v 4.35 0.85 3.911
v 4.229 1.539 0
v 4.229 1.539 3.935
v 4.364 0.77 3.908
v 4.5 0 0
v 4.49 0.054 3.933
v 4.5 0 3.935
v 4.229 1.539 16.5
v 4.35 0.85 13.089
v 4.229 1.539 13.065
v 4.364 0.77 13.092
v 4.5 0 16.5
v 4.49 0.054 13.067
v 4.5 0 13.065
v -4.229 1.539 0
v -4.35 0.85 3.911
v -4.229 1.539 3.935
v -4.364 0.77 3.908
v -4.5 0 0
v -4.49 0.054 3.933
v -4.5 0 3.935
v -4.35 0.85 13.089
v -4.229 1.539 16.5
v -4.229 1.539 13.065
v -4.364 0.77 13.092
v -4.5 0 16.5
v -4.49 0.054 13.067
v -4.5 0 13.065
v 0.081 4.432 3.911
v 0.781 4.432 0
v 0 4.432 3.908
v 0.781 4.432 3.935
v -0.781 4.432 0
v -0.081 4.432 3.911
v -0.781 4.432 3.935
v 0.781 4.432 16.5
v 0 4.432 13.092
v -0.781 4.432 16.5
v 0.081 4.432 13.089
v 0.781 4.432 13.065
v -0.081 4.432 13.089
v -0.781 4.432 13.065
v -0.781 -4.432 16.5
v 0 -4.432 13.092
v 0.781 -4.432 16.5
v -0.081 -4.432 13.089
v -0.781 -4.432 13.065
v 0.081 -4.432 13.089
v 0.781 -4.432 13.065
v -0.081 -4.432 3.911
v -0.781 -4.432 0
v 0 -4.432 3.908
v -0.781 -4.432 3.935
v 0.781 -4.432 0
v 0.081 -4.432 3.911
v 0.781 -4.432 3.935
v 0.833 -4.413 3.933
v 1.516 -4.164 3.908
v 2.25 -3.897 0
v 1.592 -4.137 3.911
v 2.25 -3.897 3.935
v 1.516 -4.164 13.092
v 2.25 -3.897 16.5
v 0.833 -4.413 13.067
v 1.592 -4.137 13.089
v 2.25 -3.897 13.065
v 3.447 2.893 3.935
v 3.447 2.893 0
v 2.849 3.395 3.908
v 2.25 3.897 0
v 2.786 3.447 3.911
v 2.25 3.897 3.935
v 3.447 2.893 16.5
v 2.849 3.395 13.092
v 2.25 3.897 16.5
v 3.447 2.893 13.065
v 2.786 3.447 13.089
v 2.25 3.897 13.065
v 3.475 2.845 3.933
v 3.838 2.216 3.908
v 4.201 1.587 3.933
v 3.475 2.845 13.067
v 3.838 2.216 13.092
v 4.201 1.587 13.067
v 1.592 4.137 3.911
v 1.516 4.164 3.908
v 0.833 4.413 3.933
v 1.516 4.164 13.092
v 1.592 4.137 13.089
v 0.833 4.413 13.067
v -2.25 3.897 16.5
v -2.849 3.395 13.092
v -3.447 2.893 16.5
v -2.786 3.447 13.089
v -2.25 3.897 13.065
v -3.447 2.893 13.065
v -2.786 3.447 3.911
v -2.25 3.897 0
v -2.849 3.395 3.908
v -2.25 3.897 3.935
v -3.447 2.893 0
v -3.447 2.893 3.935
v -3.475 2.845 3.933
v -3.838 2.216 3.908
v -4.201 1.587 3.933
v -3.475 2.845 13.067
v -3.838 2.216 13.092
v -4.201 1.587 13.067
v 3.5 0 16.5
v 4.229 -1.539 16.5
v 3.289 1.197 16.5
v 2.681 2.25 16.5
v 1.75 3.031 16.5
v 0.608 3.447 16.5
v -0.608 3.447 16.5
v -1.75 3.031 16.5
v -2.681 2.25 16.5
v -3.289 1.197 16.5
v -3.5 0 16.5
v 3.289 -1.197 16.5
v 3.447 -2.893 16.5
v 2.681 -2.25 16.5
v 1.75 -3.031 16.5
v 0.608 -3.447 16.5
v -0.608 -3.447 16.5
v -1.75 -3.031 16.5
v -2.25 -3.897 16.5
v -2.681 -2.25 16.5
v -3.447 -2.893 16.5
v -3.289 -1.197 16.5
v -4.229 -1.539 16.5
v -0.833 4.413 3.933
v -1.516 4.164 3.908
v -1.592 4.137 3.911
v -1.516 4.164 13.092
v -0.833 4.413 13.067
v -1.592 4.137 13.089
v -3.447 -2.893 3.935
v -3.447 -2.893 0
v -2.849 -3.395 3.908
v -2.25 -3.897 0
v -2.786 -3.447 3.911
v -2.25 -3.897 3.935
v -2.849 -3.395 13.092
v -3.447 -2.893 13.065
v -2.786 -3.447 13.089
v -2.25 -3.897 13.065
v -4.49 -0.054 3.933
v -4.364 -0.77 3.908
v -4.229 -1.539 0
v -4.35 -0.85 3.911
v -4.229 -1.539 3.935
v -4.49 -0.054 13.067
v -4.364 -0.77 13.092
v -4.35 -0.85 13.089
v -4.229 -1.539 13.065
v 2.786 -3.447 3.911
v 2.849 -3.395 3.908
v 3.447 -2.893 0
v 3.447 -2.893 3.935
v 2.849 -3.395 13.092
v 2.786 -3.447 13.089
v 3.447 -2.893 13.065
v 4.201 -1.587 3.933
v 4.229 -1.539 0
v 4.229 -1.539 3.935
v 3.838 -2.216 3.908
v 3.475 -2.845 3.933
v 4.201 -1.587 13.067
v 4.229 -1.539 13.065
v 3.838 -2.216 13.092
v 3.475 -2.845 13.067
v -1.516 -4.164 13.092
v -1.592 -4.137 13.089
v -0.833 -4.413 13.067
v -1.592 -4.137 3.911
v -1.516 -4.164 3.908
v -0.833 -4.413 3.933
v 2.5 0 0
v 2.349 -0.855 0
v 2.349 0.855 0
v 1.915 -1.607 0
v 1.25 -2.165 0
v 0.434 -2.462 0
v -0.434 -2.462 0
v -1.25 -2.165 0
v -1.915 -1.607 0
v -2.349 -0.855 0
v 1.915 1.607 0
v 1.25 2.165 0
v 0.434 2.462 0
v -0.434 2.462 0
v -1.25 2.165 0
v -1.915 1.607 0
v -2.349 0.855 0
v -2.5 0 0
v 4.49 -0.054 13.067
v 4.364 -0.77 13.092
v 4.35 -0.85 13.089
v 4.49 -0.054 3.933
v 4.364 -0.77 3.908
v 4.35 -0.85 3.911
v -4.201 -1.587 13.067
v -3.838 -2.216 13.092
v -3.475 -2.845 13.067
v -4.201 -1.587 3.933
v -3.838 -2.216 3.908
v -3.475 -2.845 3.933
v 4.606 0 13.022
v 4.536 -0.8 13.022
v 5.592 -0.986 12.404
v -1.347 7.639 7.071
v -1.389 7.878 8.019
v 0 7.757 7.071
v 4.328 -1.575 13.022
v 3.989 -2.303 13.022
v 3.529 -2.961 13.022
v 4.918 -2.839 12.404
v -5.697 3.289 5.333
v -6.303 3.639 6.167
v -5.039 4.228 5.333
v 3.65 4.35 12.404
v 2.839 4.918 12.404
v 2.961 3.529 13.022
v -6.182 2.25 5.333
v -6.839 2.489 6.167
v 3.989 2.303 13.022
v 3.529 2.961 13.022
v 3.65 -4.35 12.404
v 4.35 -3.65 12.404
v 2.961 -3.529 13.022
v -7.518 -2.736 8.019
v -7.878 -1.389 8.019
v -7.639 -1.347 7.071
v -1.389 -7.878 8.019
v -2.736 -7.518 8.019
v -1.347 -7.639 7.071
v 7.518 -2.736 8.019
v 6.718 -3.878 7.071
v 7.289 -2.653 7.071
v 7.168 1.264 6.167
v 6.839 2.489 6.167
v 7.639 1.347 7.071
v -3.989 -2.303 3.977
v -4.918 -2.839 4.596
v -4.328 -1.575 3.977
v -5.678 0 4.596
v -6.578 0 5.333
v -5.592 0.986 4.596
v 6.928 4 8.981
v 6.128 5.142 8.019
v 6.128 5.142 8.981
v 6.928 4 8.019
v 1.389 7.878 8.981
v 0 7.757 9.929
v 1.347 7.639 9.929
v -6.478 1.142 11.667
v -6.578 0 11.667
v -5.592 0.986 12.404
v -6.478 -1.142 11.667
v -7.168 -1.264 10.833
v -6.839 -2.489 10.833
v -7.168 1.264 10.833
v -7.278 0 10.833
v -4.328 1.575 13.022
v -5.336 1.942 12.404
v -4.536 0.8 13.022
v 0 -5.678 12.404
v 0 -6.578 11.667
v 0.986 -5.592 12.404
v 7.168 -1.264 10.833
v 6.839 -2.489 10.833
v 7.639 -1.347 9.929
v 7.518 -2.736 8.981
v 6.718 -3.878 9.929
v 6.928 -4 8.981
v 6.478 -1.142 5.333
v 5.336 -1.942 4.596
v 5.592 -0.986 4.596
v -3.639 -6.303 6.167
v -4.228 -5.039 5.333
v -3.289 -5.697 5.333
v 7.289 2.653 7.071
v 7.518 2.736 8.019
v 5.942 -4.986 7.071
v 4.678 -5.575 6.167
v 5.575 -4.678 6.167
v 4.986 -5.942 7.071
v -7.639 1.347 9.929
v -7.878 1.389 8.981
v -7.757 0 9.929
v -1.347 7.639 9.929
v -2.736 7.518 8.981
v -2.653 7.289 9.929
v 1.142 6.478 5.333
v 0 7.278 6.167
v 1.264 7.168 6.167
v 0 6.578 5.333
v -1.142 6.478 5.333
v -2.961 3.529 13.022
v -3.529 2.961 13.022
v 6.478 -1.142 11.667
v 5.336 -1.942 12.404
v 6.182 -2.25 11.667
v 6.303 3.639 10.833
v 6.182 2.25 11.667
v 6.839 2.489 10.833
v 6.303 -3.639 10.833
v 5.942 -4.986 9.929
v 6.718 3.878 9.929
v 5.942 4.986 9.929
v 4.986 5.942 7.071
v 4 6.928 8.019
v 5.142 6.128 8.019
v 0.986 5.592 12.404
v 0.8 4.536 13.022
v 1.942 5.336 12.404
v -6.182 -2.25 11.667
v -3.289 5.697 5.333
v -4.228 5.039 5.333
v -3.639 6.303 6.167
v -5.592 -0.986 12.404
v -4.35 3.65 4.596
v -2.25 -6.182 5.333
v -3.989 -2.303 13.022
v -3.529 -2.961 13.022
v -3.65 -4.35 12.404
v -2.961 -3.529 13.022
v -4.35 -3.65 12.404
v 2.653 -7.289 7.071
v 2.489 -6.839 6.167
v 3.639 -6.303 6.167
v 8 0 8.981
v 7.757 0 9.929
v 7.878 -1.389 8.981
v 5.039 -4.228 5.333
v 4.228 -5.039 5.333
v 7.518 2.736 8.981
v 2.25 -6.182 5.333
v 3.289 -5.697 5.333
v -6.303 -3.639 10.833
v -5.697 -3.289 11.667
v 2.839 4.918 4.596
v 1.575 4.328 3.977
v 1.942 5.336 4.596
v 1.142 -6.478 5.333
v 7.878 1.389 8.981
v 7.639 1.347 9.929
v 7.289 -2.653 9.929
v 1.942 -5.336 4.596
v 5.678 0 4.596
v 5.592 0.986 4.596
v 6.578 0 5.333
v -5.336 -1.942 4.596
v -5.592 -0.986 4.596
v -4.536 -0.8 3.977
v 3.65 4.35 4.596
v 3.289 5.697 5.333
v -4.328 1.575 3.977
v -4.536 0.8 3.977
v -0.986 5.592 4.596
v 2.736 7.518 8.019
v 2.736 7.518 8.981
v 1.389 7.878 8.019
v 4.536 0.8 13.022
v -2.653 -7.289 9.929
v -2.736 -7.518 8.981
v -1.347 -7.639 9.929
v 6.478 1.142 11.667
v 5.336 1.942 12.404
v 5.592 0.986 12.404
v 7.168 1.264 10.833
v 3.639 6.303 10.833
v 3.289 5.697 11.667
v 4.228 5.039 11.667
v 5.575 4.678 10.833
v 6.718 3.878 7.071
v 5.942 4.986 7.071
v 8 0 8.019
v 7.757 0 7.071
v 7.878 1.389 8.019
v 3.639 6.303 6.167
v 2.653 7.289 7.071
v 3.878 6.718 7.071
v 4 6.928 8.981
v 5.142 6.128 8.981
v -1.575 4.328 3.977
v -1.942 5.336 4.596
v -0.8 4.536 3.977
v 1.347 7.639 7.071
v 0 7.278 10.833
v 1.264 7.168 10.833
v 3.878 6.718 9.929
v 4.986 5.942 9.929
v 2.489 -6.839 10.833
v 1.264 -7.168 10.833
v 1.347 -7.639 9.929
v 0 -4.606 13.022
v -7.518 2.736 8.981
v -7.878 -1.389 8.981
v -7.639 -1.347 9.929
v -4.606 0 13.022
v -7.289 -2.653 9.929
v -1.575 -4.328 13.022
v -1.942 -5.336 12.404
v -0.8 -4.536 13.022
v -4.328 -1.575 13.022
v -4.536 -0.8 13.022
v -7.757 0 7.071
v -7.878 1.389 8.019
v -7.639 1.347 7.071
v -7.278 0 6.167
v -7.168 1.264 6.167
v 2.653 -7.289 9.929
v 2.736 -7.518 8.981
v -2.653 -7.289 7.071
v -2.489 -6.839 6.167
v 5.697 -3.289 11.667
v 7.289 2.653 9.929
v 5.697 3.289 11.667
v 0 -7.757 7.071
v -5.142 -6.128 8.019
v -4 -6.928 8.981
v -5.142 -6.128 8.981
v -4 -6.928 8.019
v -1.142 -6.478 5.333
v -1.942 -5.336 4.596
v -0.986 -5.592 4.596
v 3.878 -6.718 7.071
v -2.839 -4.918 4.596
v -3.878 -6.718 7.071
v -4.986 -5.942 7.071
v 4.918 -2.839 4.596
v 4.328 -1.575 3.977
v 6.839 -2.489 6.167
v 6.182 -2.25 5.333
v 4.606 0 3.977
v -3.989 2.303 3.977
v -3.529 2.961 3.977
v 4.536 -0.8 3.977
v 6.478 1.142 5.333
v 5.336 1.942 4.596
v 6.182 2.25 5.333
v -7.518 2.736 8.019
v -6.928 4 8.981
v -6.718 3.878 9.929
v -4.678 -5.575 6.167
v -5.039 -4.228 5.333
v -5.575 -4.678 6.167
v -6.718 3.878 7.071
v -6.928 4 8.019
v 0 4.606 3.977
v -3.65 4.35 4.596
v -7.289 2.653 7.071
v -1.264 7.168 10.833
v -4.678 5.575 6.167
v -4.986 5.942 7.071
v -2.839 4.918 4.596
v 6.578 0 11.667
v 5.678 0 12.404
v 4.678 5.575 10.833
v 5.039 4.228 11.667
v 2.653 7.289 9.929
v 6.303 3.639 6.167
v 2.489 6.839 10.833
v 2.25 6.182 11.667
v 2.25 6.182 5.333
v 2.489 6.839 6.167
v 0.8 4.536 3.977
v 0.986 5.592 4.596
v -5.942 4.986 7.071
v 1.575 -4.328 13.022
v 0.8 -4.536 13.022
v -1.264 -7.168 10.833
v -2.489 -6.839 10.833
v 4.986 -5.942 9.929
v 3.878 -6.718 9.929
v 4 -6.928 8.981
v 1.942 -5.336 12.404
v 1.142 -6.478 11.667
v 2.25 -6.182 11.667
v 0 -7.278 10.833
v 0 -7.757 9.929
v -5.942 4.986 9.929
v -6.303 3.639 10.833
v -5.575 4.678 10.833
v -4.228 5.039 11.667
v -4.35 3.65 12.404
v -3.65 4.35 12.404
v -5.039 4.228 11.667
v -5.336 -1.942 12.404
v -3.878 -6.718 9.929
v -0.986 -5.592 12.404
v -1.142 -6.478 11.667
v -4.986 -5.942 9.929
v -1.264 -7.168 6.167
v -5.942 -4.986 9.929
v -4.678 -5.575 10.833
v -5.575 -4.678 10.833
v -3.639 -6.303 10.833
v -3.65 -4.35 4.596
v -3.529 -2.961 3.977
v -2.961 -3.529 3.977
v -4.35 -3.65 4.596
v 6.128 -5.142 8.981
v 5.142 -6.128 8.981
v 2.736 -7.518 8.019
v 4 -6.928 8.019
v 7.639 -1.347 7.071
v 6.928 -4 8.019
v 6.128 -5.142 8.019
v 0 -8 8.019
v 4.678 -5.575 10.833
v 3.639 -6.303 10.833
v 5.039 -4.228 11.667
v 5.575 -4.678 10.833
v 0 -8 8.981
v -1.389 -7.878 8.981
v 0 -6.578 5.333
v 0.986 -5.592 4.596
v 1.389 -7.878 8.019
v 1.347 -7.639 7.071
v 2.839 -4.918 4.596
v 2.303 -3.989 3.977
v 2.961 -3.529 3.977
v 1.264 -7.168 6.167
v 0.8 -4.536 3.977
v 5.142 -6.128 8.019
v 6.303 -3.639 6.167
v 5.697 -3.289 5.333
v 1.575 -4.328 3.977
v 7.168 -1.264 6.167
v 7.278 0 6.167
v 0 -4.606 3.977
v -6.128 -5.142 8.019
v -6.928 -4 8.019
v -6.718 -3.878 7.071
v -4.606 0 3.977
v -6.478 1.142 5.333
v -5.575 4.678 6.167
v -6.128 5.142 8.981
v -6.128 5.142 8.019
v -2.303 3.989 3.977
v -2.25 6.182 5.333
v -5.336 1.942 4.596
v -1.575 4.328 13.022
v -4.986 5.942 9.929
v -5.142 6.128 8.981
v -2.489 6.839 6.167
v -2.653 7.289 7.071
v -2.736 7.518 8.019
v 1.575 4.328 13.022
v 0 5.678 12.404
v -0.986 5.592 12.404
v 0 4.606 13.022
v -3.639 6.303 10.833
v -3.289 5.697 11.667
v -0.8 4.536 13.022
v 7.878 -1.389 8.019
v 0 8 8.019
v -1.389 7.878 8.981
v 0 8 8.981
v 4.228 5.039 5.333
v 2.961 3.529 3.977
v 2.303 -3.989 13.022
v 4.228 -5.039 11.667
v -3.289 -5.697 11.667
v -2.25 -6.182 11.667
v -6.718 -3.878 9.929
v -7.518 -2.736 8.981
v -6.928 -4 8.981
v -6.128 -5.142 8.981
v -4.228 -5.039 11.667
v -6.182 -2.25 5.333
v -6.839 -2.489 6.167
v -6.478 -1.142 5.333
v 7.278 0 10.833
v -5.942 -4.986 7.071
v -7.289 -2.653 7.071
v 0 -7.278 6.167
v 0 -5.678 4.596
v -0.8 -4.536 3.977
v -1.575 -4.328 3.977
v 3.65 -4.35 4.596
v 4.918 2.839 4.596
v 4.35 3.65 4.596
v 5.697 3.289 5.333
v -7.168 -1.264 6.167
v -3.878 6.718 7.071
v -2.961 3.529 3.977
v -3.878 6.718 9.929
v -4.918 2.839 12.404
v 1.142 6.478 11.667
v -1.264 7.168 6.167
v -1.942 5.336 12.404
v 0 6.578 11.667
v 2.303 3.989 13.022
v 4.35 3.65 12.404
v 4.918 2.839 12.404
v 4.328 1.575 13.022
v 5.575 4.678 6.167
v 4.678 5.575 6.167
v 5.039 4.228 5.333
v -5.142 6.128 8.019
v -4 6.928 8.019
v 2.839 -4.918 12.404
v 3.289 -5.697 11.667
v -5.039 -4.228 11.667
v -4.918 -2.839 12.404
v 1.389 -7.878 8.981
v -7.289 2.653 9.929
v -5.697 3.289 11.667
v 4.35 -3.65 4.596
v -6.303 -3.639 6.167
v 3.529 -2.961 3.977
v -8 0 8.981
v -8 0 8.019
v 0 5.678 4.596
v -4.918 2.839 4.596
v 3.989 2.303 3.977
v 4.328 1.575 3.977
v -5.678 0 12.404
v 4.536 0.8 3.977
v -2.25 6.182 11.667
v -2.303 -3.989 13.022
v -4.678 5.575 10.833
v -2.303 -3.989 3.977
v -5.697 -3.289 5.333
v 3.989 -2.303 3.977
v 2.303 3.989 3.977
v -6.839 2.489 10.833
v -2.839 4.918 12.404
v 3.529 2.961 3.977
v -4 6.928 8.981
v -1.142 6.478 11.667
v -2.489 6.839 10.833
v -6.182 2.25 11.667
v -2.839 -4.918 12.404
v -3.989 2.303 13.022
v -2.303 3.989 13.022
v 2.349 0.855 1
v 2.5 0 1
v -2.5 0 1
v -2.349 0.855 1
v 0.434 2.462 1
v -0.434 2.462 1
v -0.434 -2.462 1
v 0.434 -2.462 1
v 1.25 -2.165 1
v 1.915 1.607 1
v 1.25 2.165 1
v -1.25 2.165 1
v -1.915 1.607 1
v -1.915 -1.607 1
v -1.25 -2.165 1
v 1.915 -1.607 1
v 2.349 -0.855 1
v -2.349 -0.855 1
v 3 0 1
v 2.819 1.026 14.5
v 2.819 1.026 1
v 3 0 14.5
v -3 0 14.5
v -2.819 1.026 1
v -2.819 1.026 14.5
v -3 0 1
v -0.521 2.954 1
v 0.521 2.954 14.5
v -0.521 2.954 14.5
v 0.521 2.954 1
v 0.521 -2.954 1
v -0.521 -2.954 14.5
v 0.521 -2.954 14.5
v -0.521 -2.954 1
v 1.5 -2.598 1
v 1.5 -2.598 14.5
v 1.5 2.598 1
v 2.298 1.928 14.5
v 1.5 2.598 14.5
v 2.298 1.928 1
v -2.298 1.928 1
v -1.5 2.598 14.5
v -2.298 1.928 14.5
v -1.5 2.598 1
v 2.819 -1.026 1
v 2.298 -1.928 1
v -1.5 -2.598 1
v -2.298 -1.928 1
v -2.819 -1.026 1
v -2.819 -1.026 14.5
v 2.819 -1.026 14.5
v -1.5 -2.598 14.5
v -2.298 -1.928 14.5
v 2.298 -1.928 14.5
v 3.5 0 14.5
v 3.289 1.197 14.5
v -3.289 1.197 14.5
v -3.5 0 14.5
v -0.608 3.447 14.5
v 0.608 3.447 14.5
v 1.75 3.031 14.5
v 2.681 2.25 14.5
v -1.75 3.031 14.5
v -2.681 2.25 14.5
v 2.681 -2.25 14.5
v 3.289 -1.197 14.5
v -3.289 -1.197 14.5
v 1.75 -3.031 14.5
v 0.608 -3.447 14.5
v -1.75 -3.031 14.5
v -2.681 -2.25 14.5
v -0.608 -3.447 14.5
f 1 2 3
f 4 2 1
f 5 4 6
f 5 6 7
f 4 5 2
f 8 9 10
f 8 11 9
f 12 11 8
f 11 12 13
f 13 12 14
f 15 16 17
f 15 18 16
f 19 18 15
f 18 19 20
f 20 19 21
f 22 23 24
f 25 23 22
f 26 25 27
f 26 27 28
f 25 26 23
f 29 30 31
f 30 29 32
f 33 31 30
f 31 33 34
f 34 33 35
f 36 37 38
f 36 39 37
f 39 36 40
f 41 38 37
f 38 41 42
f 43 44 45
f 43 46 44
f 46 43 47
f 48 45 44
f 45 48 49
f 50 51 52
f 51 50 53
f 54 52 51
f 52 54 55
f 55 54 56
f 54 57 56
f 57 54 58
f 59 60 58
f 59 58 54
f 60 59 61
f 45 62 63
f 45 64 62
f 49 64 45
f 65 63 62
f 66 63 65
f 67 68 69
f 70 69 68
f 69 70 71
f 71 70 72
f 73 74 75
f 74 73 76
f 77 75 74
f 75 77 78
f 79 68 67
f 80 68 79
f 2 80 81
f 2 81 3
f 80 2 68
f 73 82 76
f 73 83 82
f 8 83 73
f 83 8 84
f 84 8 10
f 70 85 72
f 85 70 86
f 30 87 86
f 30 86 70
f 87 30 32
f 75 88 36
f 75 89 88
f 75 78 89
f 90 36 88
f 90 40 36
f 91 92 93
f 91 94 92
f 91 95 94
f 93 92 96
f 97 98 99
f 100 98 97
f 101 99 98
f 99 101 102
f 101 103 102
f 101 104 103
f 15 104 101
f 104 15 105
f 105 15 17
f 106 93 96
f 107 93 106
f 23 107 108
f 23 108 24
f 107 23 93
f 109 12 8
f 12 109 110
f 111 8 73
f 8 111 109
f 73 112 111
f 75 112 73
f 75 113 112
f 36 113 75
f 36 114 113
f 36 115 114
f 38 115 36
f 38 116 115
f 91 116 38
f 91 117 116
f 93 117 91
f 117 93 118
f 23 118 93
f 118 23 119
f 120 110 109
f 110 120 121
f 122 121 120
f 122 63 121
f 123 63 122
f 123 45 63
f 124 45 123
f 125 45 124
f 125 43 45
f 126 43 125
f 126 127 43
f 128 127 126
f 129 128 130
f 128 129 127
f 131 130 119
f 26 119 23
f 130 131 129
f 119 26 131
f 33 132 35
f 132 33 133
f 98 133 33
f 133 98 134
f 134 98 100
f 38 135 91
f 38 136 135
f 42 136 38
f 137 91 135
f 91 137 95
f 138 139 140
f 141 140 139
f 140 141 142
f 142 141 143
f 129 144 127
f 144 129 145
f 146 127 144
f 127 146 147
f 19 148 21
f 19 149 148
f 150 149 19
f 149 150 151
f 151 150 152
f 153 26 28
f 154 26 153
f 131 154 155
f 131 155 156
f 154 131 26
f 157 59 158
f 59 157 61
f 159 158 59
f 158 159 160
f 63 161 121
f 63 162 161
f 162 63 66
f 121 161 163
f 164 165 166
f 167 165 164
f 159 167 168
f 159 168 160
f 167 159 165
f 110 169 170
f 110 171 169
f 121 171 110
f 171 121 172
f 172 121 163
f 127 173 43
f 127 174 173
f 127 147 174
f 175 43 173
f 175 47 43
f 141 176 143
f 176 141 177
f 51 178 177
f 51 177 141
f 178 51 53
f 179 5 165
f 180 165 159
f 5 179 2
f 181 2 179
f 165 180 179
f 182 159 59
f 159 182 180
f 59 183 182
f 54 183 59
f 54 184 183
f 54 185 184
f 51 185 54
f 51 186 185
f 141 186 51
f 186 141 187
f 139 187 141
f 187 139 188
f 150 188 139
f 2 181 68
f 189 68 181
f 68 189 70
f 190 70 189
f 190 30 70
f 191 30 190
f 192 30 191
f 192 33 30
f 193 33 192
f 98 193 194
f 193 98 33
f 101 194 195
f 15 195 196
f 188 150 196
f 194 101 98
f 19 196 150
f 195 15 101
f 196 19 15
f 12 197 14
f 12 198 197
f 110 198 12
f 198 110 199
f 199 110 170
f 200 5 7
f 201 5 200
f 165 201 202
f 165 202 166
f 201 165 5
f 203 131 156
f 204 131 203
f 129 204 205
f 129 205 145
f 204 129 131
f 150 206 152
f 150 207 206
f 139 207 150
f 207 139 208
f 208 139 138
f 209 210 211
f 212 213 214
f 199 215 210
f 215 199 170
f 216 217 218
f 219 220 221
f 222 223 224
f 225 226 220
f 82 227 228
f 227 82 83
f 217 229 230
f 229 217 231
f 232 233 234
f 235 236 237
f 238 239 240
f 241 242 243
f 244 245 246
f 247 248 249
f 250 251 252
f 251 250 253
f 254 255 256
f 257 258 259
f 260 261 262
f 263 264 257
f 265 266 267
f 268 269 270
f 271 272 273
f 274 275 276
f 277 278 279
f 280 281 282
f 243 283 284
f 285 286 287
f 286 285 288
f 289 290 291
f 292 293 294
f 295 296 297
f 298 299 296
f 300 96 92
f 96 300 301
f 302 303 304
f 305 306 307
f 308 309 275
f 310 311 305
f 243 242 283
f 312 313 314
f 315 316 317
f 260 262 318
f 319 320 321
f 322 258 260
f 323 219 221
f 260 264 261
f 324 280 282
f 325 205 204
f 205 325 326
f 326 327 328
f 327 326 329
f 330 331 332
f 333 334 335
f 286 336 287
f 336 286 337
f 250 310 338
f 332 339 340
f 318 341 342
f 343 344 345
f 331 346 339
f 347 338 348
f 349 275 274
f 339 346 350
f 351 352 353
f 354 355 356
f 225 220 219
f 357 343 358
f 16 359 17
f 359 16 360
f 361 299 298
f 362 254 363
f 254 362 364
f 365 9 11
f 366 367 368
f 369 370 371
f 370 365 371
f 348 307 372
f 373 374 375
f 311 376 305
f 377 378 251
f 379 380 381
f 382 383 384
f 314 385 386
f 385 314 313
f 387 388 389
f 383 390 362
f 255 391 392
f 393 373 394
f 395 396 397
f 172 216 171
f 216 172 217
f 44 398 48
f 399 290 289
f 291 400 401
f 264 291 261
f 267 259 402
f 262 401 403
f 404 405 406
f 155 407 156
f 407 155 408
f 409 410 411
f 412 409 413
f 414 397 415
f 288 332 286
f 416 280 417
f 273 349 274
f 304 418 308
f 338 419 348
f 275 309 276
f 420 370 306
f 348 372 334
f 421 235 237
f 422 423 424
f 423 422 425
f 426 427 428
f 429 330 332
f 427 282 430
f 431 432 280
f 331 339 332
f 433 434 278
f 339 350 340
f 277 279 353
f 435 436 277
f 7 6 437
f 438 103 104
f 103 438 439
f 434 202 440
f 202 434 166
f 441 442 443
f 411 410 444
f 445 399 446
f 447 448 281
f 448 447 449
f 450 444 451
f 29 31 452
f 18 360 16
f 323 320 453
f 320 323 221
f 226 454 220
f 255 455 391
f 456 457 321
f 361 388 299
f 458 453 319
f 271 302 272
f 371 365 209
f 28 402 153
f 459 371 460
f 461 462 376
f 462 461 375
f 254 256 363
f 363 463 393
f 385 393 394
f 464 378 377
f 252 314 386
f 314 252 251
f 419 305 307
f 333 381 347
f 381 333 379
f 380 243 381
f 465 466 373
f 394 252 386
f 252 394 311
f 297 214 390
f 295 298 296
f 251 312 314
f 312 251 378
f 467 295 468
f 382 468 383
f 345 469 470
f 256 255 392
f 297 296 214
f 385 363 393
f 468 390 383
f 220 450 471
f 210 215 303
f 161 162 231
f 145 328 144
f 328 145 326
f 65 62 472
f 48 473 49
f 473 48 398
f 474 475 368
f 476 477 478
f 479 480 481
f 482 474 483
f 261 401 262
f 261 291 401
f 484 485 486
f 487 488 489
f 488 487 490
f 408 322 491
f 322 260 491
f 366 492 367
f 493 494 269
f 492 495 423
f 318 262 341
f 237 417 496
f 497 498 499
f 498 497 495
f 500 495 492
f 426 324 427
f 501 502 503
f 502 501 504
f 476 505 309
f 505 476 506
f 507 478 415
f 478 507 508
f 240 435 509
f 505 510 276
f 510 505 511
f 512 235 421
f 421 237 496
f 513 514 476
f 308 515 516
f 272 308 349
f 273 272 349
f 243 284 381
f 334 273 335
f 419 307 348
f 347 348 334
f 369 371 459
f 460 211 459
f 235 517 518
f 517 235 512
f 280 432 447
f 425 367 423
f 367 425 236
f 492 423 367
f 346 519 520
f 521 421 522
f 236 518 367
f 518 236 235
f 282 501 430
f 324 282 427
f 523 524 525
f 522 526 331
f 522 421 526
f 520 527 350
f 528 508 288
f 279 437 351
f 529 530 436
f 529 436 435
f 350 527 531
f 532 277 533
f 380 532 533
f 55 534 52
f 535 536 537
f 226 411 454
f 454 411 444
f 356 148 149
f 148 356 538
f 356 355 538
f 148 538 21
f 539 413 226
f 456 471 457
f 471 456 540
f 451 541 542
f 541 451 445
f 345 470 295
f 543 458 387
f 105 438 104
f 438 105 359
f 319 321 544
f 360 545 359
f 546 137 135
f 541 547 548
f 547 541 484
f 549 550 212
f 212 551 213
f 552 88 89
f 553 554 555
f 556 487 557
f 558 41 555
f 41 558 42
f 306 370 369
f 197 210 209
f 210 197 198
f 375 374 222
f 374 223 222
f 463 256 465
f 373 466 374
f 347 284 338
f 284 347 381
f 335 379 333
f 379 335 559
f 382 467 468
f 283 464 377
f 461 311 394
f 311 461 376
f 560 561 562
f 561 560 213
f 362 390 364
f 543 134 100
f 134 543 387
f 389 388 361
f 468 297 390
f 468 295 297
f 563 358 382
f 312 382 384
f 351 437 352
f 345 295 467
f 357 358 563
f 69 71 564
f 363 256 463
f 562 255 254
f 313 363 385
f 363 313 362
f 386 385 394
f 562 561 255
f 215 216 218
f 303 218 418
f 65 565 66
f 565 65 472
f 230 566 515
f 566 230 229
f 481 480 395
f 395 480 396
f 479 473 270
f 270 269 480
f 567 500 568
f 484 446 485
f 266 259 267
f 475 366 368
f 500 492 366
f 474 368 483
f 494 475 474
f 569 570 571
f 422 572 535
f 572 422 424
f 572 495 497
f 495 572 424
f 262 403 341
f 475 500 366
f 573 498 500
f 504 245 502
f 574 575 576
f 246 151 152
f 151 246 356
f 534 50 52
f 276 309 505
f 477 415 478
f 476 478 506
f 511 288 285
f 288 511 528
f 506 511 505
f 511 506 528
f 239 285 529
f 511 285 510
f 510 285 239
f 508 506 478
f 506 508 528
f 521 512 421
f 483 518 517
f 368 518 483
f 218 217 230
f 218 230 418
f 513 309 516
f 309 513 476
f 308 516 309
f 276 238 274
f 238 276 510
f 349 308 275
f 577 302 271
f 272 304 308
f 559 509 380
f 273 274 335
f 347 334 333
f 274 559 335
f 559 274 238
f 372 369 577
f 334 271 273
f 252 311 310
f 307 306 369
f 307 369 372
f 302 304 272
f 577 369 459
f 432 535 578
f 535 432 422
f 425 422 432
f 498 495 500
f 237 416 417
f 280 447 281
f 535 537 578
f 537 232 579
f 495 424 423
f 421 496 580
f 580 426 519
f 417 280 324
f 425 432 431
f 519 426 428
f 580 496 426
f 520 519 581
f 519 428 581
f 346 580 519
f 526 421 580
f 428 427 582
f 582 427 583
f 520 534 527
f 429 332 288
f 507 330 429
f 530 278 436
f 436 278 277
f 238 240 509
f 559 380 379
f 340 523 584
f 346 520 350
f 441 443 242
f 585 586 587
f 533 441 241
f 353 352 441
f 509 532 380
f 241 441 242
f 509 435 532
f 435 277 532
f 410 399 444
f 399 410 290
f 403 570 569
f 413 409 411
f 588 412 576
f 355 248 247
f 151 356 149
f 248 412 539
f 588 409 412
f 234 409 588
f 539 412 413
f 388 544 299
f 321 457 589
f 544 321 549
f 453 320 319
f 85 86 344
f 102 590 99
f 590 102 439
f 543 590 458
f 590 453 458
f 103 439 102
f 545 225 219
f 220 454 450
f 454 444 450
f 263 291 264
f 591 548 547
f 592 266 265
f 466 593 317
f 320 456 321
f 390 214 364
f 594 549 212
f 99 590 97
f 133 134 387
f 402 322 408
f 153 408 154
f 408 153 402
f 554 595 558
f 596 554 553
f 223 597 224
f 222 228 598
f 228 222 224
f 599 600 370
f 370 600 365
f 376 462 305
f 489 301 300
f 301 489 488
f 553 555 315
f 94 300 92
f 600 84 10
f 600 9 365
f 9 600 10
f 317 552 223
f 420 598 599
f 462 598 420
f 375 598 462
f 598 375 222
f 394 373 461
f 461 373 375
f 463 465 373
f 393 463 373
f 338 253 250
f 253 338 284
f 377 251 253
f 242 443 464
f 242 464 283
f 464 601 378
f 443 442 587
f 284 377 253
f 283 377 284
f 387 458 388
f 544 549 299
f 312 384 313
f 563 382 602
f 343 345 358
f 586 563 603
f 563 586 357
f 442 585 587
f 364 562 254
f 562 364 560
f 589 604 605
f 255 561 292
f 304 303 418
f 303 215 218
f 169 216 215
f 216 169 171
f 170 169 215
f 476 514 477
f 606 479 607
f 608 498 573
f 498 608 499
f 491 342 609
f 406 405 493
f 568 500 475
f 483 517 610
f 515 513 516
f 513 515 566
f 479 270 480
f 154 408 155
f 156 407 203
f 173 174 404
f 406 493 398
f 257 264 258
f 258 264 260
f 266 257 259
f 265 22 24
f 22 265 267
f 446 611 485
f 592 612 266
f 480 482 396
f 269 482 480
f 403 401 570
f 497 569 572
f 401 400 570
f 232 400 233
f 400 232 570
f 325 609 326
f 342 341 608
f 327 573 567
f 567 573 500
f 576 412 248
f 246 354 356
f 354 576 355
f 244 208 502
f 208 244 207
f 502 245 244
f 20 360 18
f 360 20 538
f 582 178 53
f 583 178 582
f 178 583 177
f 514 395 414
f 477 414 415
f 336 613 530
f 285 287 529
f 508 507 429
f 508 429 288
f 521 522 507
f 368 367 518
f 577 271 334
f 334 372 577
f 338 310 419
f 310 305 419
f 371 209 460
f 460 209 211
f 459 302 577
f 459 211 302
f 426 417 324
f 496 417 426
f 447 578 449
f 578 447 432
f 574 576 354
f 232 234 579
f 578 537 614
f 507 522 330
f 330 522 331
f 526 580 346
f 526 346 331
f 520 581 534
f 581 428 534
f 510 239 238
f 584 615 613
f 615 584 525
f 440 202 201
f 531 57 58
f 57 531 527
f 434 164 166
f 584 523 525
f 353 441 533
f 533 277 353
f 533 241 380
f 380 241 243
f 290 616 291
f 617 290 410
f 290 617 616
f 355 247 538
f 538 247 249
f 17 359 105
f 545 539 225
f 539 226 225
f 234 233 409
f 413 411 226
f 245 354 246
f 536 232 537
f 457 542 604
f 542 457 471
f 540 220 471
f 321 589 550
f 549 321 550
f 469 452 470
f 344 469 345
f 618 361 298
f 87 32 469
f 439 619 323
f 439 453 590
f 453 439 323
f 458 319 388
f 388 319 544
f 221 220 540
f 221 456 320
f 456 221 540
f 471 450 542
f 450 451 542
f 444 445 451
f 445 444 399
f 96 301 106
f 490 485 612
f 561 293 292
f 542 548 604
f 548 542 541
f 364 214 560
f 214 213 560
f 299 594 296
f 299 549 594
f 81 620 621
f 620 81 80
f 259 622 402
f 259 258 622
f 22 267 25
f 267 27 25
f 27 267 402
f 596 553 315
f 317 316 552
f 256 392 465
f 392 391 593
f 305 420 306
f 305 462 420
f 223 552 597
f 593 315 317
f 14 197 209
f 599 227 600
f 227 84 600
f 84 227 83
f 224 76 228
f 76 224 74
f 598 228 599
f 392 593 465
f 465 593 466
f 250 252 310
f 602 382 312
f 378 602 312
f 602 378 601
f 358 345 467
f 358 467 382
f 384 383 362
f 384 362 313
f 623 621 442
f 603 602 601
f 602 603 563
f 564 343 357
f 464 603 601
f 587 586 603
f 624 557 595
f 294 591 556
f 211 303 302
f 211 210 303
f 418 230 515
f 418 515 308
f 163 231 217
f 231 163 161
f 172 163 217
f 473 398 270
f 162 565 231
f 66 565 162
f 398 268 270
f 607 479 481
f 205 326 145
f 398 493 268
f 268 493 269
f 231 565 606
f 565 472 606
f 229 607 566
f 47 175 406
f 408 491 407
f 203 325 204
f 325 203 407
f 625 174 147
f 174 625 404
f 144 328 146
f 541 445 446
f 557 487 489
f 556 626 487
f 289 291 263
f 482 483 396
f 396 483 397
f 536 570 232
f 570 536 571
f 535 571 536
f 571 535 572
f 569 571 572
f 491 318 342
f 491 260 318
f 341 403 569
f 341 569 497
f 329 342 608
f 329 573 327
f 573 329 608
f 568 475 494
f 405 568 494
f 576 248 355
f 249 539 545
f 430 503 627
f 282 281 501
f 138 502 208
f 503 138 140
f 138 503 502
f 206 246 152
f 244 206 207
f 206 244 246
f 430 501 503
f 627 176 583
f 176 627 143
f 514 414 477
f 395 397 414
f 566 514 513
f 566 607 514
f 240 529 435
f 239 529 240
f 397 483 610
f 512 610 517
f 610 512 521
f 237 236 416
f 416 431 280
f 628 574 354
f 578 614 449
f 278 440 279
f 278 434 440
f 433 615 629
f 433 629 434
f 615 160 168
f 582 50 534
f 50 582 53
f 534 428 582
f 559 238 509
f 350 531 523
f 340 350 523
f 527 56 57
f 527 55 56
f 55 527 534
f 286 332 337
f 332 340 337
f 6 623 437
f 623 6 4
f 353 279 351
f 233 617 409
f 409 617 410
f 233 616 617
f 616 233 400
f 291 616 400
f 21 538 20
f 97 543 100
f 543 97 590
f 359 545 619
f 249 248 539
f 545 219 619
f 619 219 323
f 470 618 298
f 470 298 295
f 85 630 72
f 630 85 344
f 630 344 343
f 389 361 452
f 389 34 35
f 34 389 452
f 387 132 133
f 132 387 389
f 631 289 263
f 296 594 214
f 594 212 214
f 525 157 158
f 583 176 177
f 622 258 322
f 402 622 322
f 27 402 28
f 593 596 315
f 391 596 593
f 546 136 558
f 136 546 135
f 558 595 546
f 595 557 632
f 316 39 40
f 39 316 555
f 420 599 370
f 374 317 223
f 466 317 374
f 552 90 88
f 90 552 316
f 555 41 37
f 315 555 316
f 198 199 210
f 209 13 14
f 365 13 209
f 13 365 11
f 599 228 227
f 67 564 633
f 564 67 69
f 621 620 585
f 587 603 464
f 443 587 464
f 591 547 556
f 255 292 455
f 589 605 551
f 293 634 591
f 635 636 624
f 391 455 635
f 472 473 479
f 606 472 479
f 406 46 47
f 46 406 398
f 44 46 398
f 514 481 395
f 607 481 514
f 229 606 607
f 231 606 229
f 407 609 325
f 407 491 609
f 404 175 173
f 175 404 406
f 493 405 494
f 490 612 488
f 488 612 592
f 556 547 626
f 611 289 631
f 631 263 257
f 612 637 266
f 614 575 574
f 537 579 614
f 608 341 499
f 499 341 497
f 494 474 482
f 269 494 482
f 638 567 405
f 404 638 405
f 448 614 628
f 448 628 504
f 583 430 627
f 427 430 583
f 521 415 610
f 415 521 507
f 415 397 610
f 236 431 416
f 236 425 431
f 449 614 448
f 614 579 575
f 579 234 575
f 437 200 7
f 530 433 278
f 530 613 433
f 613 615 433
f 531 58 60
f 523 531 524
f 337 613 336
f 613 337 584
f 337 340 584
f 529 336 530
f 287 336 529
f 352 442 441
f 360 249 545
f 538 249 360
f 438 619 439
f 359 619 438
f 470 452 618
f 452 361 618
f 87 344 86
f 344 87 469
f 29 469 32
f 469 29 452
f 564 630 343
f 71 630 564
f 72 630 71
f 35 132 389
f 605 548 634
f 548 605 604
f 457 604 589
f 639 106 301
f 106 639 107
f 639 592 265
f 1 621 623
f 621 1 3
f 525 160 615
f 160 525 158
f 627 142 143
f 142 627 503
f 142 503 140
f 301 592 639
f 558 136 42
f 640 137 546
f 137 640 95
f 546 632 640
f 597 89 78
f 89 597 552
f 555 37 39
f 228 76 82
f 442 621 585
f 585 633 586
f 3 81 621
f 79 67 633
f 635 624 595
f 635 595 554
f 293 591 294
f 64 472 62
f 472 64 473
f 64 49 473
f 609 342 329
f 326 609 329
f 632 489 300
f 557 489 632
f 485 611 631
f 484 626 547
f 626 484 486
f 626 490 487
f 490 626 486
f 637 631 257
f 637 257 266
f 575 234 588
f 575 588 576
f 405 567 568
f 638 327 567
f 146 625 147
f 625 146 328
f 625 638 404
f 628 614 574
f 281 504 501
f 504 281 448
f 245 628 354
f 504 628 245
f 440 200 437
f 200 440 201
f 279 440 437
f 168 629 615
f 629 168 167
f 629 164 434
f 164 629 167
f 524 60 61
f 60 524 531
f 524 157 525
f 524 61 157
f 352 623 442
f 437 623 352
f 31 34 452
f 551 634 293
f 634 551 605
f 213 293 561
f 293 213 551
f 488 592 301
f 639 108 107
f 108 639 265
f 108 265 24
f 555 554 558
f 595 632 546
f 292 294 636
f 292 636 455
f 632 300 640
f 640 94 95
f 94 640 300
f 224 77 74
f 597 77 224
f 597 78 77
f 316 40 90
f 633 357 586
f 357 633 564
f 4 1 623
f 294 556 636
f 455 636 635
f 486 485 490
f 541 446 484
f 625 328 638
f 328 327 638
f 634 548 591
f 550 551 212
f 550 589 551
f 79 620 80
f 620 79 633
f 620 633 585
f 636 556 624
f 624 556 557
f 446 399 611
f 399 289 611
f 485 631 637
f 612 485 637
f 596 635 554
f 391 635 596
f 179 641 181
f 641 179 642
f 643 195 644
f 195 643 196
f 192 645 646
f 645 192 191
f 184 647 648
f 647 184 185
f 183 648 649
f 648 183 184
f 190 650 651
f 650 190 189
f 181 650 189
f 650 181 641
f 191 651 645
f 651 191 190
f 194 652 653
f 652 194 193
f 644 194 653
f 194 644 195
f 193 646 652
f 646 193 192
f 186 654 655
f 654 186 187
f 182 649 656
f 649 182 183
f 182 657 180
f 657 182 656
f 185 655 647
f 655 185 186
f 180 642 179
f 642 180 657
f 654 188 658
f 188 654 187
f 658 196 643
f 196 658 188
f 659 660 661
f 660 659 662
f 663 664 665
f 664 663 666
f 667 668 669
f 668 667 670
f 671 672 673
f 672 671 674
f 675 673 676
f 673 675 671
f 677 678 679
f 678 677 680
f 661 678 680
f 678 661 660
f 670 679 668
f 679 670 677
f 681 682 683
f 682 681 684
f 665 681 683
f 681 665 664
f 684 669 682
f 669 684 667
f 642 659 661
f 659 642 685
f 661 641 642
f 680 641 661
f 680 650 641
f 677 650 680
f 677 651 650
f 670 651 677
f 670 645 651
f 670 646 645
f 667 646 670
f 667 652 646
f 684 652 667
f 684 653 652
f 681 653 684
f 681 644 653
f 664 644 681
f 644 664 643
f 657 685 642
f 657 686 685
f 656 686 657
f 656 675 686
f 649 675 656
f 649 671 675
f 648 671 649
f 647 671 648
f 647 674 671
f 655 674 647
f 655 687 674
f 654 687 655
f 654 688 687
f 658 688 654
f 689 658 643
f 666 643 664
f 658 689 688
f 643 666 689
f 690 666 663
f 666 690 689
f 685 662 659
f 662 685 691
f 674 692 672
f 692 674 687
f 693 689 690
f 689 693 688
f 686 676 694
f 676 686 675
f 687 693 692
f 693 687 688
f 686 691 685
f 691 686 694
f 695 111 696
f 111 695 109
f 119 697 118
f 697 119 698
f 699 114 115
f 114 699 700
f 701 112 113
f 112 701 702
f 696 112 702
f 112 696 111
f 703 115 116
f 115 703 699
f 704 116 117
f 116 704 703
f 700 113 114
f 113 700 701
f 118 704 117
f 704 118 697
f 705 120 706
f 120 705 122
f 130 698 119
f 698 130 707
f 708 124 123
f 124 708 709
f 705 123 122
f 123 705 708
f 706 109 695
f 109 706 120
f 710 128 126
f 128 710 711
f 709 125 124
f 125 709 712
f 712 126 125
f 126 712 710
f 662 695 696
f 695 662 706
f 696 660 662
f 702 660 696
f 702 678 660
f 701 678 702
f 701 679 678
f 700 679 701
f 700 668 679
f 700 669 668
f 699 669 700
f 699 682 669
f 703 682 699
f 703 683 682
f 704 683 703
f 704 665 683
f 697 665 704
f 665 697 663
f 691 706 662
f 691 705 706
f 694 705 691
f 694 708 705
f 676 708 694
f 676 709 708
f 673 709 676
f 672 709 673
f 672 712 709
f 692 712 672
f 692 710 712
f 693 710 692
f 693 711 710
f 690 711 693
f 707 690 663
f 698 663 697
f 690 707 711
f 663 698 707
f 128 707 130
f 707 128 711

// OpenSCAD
difference() {
  union(){
    /* main cylinder */
    cylinder(h=16.5, r=4.5, $fn=18);
    /* main sphere */
    translate([0,0,8.5]) resize(newsize=[16,16,11]) sphere(r=16, $fn=36);
  }
  union(){
    /* lower bore */
    translate([0,0,-1]) cylinder(h=3, r=2.5, $fn=18);
    /* main bore */
    translate([0,0,1]) cylinder(h=16.5, r=3, $fn=18);
    /* upper bore */
    translate([0,0,14.5]) cylinder(h=3, r=3.5, $fn=18);
  }
}
